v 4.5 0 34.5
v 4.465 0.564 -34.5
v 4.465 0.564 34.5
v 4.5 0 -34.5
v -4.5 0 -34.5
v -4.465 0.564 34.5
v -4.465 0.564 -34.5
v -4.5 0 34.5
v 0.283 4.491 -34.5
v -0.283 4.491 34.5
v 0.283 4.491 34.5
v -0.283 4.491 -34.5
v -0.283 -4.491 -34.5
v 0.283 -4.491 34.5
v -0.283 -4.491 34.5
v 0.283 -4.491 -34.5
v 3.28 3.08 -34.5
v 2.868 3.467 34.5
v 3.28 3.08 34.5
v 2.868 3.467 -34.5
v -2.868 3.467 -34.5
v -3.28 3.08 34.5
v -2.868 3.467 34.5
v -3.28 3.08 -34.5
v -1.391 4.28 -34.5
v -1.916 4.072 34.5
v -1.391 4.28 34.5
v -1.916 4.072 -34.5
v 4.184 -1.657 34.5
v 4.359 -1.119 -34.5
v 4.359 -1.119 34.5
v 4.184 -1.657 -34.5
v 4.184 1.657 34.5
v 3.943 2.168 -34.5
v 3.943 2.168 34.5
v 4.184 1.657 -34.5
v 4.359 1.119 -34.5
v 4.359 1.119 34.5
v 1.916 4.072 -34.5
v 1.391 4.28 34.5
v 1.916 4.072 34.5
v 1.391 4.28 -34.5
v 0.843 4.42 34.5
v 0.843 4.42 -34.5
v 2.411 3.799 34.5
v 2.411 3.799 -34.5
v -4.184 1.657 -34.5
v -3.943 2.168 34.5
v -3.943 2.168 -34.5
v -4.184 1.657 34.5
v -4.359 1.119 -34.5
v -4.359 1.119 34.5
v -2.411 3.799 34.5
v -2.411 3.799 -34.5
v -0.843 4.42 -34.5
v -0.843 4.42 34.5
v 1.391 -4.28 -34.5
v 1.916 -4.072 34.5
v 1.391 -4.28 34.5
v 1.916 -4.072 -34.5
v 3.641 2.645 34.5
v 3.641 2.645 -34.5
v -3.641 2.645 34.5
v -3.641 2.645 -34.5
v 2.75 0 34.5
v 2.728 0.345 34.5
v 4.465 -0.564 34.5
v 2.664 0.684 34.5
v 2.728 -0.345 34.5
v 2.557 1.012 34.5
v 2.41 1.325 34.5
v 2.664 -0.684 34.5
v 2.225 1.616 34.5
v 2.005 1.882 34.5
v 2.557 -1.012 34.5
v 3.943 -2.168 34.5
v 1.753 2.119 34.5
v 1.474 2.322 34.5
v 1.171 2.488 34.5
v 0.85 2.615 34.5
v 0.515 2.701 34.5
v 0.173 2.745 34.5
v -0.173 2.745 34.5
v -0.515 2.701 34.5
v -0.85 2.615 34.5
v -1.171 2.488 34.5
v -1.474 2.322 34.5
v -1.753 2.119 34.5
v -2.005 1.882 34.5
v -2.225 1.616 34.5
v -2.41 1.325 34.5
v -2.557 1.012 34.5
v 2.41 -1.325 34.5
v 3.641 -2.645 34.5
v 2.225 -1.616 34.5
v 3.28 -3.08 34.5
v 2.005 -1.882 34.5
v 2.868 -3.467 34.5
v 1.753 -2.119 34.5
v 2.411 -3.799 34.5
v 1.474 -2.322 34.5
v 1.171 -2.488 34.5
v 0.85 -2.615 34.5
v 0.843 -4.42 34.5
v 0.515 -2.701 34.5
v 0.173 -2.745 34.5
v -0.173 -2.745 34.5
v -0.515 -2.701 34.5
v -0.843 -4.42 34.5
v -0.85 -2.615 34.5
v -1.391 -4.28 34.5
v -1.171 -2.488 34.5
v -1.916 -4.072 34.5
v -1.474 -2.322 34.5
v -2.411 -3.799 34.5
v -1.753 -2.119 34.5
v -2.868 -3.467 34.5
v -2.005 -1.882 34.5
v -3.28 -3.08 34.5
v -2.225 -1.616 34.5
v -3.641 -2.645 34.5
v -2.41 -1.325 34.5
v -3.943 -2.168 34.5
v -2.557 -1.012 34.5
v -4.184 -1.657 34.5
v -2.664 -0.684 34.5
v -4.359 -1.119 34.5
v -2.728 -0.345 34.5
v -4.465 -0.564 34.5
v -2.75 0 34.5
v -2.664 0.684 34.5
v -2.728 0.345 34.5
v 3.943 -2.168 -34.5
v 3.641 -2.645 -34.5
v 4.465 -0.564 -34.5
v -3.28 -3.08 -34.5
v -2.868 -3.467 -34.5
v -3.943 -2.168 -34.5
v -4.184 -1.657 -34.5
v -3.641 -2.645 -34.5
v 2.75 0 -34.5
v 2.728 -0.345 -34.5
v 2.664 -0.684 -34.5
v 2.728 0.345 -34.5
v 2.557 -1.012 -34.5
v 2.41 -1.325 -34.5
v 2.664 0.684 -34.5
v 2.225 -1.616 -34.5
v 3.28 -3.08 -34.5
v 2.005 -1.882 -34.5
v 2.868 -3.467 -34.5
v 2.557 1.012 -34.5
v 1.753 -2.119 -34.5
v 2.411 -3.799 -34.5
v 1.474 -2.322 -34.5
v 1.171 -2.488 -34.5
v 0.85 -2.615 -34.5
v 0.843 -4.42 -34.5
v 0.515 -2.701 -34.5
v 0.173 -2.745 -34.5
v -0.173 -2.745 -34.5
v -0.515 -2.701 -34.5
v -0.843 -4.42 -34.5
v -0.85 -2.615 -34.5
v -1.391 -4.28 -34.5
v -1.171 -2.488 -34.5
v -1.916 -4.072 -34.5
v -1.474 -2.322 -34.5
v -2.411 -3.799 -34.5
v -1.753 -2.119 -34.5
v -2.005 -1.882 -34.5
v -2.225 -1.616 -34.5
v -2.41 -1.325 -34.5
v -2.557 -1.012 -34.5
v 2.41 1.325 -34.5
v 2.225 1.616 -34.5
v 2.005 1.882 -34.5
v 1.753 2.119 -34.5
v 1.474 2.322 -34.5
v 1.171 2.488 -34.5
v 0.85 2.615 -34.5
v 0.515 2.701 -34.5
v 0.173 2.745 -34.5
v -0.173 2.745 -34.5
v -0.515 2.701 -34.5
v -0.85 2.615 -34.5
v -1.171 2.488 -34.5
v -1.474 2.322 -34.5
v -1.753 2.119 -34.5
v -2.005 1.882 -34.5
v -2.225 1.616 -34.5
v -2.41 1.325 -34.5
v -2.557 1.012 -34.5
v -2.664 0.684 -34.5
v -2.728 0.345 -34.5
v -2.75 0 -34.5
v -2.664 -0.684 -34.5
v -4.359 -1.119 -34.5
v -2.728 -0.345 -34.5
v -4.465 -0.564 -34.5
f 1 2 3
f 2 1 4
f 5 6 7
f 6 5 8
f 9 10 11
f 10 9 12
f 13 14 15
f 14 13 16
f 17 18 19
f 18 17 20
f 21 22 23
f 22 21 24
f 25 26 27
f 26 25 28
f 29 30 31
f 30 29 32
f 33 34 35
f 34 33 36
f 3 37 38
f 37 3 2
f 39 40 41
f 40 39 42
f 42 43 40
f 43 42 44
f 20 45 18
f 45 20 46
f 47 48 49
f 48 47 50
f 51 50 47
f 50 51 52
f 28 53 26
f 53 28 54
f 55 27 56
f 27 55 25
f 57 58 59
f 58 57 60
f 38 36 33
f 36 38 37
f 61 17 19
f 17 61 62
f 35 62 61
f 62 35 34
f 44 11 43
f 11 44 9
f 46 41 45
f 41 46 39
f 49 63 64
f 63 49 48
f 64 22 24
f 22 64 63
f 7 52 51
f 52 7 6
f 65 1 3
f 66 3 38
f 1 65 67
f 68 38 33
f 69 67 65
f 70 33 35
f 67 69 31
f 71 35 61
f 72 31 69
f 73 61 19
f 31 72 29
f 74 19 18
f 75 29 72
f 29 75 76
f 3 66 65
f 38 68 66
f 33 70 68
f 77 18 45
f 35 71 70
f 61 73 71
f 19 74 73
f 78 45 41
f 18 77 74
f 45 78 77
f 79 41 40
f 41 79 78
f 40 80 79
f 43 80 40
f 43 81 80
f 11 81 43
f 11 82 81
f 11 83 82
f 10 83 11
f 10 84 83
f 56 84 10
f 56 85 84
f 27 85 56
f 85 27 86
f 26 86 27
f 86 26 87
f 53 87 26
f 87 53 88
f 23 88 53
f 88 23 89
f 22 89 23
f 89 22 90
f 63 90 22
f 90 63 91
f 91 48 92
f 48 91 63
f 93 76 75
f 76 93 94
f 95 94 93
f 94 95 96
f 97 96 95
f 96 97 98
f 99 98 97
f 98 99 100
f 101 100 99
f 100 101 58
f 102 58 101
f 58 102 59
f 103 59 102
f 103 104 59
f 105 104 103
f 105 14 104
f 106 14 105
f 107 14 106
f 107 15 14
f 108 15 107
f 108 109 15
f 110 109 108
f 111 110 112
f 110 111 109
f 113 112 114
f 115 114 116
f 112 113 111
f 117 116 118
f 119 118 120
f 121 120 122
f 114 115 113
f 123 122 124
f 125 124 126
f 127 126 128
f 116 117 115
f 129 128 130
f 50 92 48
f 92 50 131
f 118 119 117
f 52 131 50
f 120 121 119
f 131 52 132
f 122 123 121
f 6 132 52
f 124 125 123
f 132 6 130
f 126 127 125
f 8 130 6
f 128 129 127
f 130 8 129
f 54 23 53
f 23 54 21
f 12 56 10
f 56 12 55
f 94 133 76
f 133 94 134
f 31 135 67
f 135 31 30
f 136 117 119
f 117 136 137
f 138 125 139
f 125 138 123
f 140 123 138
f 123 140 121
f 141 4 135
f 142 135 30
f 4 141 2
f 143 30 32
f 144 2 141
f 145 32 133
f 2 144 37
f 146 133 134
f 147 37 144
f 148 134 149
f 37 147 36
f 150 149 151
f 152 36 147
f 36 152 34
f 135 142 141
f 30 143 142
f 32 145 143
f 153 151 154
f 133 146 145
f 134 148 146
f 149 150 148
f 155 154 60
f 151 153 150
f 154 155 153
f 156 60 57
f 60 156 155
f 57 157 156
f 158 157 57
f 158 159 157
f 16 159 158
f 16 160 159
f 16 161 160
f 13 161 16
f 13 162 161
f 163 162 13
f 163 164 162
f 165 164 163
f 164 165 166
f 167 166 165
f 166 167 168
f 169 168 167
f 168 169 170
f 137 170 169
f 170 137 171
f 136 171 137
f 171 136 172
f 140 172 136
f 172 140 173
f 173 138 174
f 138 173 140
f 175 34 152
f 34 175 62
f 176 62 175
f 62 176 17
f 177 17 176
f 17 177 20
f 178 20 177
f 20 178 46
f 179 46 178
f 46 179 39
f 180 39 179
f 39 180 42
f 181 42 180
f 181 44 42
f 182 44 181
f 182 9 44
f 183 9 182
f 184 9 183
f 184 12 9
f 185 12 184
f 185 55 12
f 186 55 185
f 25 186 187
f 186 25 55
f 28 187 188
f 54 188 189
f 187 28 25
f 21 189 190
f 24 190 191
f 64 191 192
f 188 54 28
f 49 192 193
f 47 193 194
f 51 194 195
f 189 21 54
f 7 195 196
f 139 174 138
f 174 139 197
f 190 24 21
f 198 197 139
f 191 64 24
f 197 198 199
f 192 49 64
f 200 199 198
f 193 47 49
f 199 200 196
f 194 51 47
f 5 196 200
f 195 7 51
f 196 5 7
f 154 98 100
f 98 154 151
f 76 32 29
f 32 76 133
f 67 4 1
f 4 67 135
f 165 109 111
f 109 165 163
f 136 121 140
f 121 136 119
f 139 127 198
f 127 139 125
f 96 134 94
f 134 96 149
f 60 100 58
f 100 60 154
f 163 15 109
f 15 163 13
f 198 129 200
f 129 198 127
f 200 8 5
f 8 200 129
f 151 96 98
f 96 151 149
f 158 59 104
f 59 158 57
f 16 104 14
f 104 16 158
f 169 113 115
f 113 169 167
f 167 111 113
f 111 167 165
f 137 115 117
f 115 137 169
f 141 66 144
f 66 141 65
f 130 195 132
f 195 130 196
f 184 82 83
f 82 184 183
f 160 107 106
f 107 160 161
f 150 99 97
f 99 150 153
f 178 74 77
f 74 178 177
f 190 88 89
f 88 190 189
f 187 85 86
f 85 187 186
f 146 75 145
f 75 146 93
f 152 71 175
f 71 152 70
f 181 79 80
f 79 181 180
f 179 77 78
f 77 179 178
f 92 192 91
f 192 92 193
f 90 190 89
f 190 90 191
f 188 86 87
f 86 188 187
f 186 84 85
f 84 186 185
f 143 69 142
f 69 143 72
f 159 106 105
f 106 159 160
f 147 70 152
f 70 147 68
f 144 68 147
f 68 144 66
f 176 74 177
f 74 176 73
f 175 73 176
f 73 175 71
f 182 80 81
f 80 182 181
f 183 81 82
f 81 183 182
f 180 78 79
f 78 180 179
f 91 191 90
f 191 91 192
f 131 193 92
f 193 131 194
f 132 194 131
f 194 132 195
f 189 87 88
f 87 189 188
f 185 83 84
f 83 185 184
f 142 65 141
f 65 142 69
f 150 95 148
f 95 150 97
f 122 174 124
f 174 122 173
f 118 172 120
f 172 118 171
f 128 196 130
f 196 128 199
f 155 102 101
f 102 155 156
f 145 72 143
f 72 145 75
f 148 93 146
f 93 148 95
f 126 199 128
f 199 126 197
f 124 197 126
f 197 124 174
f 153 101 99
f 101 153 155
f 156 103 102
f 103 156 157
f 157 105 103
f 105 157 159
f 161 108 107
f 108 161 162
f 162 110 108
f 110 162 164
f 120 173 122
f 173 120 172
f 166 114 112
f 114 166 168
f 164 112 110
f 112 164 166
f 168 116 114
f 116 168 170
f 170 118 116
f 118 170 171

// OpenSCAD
$fn = 50;


difference() {
	union() {
		translate(v = [0, 0, -34.5000000000]) {
			cylinder(h = 69, r = 4.5000000000);
		}
	}
	union() {
		translate(v = [0, 0, -100.0000000000]) {
			cylinder(h = 200, r = 2.7500000000);
		}
	}
}
